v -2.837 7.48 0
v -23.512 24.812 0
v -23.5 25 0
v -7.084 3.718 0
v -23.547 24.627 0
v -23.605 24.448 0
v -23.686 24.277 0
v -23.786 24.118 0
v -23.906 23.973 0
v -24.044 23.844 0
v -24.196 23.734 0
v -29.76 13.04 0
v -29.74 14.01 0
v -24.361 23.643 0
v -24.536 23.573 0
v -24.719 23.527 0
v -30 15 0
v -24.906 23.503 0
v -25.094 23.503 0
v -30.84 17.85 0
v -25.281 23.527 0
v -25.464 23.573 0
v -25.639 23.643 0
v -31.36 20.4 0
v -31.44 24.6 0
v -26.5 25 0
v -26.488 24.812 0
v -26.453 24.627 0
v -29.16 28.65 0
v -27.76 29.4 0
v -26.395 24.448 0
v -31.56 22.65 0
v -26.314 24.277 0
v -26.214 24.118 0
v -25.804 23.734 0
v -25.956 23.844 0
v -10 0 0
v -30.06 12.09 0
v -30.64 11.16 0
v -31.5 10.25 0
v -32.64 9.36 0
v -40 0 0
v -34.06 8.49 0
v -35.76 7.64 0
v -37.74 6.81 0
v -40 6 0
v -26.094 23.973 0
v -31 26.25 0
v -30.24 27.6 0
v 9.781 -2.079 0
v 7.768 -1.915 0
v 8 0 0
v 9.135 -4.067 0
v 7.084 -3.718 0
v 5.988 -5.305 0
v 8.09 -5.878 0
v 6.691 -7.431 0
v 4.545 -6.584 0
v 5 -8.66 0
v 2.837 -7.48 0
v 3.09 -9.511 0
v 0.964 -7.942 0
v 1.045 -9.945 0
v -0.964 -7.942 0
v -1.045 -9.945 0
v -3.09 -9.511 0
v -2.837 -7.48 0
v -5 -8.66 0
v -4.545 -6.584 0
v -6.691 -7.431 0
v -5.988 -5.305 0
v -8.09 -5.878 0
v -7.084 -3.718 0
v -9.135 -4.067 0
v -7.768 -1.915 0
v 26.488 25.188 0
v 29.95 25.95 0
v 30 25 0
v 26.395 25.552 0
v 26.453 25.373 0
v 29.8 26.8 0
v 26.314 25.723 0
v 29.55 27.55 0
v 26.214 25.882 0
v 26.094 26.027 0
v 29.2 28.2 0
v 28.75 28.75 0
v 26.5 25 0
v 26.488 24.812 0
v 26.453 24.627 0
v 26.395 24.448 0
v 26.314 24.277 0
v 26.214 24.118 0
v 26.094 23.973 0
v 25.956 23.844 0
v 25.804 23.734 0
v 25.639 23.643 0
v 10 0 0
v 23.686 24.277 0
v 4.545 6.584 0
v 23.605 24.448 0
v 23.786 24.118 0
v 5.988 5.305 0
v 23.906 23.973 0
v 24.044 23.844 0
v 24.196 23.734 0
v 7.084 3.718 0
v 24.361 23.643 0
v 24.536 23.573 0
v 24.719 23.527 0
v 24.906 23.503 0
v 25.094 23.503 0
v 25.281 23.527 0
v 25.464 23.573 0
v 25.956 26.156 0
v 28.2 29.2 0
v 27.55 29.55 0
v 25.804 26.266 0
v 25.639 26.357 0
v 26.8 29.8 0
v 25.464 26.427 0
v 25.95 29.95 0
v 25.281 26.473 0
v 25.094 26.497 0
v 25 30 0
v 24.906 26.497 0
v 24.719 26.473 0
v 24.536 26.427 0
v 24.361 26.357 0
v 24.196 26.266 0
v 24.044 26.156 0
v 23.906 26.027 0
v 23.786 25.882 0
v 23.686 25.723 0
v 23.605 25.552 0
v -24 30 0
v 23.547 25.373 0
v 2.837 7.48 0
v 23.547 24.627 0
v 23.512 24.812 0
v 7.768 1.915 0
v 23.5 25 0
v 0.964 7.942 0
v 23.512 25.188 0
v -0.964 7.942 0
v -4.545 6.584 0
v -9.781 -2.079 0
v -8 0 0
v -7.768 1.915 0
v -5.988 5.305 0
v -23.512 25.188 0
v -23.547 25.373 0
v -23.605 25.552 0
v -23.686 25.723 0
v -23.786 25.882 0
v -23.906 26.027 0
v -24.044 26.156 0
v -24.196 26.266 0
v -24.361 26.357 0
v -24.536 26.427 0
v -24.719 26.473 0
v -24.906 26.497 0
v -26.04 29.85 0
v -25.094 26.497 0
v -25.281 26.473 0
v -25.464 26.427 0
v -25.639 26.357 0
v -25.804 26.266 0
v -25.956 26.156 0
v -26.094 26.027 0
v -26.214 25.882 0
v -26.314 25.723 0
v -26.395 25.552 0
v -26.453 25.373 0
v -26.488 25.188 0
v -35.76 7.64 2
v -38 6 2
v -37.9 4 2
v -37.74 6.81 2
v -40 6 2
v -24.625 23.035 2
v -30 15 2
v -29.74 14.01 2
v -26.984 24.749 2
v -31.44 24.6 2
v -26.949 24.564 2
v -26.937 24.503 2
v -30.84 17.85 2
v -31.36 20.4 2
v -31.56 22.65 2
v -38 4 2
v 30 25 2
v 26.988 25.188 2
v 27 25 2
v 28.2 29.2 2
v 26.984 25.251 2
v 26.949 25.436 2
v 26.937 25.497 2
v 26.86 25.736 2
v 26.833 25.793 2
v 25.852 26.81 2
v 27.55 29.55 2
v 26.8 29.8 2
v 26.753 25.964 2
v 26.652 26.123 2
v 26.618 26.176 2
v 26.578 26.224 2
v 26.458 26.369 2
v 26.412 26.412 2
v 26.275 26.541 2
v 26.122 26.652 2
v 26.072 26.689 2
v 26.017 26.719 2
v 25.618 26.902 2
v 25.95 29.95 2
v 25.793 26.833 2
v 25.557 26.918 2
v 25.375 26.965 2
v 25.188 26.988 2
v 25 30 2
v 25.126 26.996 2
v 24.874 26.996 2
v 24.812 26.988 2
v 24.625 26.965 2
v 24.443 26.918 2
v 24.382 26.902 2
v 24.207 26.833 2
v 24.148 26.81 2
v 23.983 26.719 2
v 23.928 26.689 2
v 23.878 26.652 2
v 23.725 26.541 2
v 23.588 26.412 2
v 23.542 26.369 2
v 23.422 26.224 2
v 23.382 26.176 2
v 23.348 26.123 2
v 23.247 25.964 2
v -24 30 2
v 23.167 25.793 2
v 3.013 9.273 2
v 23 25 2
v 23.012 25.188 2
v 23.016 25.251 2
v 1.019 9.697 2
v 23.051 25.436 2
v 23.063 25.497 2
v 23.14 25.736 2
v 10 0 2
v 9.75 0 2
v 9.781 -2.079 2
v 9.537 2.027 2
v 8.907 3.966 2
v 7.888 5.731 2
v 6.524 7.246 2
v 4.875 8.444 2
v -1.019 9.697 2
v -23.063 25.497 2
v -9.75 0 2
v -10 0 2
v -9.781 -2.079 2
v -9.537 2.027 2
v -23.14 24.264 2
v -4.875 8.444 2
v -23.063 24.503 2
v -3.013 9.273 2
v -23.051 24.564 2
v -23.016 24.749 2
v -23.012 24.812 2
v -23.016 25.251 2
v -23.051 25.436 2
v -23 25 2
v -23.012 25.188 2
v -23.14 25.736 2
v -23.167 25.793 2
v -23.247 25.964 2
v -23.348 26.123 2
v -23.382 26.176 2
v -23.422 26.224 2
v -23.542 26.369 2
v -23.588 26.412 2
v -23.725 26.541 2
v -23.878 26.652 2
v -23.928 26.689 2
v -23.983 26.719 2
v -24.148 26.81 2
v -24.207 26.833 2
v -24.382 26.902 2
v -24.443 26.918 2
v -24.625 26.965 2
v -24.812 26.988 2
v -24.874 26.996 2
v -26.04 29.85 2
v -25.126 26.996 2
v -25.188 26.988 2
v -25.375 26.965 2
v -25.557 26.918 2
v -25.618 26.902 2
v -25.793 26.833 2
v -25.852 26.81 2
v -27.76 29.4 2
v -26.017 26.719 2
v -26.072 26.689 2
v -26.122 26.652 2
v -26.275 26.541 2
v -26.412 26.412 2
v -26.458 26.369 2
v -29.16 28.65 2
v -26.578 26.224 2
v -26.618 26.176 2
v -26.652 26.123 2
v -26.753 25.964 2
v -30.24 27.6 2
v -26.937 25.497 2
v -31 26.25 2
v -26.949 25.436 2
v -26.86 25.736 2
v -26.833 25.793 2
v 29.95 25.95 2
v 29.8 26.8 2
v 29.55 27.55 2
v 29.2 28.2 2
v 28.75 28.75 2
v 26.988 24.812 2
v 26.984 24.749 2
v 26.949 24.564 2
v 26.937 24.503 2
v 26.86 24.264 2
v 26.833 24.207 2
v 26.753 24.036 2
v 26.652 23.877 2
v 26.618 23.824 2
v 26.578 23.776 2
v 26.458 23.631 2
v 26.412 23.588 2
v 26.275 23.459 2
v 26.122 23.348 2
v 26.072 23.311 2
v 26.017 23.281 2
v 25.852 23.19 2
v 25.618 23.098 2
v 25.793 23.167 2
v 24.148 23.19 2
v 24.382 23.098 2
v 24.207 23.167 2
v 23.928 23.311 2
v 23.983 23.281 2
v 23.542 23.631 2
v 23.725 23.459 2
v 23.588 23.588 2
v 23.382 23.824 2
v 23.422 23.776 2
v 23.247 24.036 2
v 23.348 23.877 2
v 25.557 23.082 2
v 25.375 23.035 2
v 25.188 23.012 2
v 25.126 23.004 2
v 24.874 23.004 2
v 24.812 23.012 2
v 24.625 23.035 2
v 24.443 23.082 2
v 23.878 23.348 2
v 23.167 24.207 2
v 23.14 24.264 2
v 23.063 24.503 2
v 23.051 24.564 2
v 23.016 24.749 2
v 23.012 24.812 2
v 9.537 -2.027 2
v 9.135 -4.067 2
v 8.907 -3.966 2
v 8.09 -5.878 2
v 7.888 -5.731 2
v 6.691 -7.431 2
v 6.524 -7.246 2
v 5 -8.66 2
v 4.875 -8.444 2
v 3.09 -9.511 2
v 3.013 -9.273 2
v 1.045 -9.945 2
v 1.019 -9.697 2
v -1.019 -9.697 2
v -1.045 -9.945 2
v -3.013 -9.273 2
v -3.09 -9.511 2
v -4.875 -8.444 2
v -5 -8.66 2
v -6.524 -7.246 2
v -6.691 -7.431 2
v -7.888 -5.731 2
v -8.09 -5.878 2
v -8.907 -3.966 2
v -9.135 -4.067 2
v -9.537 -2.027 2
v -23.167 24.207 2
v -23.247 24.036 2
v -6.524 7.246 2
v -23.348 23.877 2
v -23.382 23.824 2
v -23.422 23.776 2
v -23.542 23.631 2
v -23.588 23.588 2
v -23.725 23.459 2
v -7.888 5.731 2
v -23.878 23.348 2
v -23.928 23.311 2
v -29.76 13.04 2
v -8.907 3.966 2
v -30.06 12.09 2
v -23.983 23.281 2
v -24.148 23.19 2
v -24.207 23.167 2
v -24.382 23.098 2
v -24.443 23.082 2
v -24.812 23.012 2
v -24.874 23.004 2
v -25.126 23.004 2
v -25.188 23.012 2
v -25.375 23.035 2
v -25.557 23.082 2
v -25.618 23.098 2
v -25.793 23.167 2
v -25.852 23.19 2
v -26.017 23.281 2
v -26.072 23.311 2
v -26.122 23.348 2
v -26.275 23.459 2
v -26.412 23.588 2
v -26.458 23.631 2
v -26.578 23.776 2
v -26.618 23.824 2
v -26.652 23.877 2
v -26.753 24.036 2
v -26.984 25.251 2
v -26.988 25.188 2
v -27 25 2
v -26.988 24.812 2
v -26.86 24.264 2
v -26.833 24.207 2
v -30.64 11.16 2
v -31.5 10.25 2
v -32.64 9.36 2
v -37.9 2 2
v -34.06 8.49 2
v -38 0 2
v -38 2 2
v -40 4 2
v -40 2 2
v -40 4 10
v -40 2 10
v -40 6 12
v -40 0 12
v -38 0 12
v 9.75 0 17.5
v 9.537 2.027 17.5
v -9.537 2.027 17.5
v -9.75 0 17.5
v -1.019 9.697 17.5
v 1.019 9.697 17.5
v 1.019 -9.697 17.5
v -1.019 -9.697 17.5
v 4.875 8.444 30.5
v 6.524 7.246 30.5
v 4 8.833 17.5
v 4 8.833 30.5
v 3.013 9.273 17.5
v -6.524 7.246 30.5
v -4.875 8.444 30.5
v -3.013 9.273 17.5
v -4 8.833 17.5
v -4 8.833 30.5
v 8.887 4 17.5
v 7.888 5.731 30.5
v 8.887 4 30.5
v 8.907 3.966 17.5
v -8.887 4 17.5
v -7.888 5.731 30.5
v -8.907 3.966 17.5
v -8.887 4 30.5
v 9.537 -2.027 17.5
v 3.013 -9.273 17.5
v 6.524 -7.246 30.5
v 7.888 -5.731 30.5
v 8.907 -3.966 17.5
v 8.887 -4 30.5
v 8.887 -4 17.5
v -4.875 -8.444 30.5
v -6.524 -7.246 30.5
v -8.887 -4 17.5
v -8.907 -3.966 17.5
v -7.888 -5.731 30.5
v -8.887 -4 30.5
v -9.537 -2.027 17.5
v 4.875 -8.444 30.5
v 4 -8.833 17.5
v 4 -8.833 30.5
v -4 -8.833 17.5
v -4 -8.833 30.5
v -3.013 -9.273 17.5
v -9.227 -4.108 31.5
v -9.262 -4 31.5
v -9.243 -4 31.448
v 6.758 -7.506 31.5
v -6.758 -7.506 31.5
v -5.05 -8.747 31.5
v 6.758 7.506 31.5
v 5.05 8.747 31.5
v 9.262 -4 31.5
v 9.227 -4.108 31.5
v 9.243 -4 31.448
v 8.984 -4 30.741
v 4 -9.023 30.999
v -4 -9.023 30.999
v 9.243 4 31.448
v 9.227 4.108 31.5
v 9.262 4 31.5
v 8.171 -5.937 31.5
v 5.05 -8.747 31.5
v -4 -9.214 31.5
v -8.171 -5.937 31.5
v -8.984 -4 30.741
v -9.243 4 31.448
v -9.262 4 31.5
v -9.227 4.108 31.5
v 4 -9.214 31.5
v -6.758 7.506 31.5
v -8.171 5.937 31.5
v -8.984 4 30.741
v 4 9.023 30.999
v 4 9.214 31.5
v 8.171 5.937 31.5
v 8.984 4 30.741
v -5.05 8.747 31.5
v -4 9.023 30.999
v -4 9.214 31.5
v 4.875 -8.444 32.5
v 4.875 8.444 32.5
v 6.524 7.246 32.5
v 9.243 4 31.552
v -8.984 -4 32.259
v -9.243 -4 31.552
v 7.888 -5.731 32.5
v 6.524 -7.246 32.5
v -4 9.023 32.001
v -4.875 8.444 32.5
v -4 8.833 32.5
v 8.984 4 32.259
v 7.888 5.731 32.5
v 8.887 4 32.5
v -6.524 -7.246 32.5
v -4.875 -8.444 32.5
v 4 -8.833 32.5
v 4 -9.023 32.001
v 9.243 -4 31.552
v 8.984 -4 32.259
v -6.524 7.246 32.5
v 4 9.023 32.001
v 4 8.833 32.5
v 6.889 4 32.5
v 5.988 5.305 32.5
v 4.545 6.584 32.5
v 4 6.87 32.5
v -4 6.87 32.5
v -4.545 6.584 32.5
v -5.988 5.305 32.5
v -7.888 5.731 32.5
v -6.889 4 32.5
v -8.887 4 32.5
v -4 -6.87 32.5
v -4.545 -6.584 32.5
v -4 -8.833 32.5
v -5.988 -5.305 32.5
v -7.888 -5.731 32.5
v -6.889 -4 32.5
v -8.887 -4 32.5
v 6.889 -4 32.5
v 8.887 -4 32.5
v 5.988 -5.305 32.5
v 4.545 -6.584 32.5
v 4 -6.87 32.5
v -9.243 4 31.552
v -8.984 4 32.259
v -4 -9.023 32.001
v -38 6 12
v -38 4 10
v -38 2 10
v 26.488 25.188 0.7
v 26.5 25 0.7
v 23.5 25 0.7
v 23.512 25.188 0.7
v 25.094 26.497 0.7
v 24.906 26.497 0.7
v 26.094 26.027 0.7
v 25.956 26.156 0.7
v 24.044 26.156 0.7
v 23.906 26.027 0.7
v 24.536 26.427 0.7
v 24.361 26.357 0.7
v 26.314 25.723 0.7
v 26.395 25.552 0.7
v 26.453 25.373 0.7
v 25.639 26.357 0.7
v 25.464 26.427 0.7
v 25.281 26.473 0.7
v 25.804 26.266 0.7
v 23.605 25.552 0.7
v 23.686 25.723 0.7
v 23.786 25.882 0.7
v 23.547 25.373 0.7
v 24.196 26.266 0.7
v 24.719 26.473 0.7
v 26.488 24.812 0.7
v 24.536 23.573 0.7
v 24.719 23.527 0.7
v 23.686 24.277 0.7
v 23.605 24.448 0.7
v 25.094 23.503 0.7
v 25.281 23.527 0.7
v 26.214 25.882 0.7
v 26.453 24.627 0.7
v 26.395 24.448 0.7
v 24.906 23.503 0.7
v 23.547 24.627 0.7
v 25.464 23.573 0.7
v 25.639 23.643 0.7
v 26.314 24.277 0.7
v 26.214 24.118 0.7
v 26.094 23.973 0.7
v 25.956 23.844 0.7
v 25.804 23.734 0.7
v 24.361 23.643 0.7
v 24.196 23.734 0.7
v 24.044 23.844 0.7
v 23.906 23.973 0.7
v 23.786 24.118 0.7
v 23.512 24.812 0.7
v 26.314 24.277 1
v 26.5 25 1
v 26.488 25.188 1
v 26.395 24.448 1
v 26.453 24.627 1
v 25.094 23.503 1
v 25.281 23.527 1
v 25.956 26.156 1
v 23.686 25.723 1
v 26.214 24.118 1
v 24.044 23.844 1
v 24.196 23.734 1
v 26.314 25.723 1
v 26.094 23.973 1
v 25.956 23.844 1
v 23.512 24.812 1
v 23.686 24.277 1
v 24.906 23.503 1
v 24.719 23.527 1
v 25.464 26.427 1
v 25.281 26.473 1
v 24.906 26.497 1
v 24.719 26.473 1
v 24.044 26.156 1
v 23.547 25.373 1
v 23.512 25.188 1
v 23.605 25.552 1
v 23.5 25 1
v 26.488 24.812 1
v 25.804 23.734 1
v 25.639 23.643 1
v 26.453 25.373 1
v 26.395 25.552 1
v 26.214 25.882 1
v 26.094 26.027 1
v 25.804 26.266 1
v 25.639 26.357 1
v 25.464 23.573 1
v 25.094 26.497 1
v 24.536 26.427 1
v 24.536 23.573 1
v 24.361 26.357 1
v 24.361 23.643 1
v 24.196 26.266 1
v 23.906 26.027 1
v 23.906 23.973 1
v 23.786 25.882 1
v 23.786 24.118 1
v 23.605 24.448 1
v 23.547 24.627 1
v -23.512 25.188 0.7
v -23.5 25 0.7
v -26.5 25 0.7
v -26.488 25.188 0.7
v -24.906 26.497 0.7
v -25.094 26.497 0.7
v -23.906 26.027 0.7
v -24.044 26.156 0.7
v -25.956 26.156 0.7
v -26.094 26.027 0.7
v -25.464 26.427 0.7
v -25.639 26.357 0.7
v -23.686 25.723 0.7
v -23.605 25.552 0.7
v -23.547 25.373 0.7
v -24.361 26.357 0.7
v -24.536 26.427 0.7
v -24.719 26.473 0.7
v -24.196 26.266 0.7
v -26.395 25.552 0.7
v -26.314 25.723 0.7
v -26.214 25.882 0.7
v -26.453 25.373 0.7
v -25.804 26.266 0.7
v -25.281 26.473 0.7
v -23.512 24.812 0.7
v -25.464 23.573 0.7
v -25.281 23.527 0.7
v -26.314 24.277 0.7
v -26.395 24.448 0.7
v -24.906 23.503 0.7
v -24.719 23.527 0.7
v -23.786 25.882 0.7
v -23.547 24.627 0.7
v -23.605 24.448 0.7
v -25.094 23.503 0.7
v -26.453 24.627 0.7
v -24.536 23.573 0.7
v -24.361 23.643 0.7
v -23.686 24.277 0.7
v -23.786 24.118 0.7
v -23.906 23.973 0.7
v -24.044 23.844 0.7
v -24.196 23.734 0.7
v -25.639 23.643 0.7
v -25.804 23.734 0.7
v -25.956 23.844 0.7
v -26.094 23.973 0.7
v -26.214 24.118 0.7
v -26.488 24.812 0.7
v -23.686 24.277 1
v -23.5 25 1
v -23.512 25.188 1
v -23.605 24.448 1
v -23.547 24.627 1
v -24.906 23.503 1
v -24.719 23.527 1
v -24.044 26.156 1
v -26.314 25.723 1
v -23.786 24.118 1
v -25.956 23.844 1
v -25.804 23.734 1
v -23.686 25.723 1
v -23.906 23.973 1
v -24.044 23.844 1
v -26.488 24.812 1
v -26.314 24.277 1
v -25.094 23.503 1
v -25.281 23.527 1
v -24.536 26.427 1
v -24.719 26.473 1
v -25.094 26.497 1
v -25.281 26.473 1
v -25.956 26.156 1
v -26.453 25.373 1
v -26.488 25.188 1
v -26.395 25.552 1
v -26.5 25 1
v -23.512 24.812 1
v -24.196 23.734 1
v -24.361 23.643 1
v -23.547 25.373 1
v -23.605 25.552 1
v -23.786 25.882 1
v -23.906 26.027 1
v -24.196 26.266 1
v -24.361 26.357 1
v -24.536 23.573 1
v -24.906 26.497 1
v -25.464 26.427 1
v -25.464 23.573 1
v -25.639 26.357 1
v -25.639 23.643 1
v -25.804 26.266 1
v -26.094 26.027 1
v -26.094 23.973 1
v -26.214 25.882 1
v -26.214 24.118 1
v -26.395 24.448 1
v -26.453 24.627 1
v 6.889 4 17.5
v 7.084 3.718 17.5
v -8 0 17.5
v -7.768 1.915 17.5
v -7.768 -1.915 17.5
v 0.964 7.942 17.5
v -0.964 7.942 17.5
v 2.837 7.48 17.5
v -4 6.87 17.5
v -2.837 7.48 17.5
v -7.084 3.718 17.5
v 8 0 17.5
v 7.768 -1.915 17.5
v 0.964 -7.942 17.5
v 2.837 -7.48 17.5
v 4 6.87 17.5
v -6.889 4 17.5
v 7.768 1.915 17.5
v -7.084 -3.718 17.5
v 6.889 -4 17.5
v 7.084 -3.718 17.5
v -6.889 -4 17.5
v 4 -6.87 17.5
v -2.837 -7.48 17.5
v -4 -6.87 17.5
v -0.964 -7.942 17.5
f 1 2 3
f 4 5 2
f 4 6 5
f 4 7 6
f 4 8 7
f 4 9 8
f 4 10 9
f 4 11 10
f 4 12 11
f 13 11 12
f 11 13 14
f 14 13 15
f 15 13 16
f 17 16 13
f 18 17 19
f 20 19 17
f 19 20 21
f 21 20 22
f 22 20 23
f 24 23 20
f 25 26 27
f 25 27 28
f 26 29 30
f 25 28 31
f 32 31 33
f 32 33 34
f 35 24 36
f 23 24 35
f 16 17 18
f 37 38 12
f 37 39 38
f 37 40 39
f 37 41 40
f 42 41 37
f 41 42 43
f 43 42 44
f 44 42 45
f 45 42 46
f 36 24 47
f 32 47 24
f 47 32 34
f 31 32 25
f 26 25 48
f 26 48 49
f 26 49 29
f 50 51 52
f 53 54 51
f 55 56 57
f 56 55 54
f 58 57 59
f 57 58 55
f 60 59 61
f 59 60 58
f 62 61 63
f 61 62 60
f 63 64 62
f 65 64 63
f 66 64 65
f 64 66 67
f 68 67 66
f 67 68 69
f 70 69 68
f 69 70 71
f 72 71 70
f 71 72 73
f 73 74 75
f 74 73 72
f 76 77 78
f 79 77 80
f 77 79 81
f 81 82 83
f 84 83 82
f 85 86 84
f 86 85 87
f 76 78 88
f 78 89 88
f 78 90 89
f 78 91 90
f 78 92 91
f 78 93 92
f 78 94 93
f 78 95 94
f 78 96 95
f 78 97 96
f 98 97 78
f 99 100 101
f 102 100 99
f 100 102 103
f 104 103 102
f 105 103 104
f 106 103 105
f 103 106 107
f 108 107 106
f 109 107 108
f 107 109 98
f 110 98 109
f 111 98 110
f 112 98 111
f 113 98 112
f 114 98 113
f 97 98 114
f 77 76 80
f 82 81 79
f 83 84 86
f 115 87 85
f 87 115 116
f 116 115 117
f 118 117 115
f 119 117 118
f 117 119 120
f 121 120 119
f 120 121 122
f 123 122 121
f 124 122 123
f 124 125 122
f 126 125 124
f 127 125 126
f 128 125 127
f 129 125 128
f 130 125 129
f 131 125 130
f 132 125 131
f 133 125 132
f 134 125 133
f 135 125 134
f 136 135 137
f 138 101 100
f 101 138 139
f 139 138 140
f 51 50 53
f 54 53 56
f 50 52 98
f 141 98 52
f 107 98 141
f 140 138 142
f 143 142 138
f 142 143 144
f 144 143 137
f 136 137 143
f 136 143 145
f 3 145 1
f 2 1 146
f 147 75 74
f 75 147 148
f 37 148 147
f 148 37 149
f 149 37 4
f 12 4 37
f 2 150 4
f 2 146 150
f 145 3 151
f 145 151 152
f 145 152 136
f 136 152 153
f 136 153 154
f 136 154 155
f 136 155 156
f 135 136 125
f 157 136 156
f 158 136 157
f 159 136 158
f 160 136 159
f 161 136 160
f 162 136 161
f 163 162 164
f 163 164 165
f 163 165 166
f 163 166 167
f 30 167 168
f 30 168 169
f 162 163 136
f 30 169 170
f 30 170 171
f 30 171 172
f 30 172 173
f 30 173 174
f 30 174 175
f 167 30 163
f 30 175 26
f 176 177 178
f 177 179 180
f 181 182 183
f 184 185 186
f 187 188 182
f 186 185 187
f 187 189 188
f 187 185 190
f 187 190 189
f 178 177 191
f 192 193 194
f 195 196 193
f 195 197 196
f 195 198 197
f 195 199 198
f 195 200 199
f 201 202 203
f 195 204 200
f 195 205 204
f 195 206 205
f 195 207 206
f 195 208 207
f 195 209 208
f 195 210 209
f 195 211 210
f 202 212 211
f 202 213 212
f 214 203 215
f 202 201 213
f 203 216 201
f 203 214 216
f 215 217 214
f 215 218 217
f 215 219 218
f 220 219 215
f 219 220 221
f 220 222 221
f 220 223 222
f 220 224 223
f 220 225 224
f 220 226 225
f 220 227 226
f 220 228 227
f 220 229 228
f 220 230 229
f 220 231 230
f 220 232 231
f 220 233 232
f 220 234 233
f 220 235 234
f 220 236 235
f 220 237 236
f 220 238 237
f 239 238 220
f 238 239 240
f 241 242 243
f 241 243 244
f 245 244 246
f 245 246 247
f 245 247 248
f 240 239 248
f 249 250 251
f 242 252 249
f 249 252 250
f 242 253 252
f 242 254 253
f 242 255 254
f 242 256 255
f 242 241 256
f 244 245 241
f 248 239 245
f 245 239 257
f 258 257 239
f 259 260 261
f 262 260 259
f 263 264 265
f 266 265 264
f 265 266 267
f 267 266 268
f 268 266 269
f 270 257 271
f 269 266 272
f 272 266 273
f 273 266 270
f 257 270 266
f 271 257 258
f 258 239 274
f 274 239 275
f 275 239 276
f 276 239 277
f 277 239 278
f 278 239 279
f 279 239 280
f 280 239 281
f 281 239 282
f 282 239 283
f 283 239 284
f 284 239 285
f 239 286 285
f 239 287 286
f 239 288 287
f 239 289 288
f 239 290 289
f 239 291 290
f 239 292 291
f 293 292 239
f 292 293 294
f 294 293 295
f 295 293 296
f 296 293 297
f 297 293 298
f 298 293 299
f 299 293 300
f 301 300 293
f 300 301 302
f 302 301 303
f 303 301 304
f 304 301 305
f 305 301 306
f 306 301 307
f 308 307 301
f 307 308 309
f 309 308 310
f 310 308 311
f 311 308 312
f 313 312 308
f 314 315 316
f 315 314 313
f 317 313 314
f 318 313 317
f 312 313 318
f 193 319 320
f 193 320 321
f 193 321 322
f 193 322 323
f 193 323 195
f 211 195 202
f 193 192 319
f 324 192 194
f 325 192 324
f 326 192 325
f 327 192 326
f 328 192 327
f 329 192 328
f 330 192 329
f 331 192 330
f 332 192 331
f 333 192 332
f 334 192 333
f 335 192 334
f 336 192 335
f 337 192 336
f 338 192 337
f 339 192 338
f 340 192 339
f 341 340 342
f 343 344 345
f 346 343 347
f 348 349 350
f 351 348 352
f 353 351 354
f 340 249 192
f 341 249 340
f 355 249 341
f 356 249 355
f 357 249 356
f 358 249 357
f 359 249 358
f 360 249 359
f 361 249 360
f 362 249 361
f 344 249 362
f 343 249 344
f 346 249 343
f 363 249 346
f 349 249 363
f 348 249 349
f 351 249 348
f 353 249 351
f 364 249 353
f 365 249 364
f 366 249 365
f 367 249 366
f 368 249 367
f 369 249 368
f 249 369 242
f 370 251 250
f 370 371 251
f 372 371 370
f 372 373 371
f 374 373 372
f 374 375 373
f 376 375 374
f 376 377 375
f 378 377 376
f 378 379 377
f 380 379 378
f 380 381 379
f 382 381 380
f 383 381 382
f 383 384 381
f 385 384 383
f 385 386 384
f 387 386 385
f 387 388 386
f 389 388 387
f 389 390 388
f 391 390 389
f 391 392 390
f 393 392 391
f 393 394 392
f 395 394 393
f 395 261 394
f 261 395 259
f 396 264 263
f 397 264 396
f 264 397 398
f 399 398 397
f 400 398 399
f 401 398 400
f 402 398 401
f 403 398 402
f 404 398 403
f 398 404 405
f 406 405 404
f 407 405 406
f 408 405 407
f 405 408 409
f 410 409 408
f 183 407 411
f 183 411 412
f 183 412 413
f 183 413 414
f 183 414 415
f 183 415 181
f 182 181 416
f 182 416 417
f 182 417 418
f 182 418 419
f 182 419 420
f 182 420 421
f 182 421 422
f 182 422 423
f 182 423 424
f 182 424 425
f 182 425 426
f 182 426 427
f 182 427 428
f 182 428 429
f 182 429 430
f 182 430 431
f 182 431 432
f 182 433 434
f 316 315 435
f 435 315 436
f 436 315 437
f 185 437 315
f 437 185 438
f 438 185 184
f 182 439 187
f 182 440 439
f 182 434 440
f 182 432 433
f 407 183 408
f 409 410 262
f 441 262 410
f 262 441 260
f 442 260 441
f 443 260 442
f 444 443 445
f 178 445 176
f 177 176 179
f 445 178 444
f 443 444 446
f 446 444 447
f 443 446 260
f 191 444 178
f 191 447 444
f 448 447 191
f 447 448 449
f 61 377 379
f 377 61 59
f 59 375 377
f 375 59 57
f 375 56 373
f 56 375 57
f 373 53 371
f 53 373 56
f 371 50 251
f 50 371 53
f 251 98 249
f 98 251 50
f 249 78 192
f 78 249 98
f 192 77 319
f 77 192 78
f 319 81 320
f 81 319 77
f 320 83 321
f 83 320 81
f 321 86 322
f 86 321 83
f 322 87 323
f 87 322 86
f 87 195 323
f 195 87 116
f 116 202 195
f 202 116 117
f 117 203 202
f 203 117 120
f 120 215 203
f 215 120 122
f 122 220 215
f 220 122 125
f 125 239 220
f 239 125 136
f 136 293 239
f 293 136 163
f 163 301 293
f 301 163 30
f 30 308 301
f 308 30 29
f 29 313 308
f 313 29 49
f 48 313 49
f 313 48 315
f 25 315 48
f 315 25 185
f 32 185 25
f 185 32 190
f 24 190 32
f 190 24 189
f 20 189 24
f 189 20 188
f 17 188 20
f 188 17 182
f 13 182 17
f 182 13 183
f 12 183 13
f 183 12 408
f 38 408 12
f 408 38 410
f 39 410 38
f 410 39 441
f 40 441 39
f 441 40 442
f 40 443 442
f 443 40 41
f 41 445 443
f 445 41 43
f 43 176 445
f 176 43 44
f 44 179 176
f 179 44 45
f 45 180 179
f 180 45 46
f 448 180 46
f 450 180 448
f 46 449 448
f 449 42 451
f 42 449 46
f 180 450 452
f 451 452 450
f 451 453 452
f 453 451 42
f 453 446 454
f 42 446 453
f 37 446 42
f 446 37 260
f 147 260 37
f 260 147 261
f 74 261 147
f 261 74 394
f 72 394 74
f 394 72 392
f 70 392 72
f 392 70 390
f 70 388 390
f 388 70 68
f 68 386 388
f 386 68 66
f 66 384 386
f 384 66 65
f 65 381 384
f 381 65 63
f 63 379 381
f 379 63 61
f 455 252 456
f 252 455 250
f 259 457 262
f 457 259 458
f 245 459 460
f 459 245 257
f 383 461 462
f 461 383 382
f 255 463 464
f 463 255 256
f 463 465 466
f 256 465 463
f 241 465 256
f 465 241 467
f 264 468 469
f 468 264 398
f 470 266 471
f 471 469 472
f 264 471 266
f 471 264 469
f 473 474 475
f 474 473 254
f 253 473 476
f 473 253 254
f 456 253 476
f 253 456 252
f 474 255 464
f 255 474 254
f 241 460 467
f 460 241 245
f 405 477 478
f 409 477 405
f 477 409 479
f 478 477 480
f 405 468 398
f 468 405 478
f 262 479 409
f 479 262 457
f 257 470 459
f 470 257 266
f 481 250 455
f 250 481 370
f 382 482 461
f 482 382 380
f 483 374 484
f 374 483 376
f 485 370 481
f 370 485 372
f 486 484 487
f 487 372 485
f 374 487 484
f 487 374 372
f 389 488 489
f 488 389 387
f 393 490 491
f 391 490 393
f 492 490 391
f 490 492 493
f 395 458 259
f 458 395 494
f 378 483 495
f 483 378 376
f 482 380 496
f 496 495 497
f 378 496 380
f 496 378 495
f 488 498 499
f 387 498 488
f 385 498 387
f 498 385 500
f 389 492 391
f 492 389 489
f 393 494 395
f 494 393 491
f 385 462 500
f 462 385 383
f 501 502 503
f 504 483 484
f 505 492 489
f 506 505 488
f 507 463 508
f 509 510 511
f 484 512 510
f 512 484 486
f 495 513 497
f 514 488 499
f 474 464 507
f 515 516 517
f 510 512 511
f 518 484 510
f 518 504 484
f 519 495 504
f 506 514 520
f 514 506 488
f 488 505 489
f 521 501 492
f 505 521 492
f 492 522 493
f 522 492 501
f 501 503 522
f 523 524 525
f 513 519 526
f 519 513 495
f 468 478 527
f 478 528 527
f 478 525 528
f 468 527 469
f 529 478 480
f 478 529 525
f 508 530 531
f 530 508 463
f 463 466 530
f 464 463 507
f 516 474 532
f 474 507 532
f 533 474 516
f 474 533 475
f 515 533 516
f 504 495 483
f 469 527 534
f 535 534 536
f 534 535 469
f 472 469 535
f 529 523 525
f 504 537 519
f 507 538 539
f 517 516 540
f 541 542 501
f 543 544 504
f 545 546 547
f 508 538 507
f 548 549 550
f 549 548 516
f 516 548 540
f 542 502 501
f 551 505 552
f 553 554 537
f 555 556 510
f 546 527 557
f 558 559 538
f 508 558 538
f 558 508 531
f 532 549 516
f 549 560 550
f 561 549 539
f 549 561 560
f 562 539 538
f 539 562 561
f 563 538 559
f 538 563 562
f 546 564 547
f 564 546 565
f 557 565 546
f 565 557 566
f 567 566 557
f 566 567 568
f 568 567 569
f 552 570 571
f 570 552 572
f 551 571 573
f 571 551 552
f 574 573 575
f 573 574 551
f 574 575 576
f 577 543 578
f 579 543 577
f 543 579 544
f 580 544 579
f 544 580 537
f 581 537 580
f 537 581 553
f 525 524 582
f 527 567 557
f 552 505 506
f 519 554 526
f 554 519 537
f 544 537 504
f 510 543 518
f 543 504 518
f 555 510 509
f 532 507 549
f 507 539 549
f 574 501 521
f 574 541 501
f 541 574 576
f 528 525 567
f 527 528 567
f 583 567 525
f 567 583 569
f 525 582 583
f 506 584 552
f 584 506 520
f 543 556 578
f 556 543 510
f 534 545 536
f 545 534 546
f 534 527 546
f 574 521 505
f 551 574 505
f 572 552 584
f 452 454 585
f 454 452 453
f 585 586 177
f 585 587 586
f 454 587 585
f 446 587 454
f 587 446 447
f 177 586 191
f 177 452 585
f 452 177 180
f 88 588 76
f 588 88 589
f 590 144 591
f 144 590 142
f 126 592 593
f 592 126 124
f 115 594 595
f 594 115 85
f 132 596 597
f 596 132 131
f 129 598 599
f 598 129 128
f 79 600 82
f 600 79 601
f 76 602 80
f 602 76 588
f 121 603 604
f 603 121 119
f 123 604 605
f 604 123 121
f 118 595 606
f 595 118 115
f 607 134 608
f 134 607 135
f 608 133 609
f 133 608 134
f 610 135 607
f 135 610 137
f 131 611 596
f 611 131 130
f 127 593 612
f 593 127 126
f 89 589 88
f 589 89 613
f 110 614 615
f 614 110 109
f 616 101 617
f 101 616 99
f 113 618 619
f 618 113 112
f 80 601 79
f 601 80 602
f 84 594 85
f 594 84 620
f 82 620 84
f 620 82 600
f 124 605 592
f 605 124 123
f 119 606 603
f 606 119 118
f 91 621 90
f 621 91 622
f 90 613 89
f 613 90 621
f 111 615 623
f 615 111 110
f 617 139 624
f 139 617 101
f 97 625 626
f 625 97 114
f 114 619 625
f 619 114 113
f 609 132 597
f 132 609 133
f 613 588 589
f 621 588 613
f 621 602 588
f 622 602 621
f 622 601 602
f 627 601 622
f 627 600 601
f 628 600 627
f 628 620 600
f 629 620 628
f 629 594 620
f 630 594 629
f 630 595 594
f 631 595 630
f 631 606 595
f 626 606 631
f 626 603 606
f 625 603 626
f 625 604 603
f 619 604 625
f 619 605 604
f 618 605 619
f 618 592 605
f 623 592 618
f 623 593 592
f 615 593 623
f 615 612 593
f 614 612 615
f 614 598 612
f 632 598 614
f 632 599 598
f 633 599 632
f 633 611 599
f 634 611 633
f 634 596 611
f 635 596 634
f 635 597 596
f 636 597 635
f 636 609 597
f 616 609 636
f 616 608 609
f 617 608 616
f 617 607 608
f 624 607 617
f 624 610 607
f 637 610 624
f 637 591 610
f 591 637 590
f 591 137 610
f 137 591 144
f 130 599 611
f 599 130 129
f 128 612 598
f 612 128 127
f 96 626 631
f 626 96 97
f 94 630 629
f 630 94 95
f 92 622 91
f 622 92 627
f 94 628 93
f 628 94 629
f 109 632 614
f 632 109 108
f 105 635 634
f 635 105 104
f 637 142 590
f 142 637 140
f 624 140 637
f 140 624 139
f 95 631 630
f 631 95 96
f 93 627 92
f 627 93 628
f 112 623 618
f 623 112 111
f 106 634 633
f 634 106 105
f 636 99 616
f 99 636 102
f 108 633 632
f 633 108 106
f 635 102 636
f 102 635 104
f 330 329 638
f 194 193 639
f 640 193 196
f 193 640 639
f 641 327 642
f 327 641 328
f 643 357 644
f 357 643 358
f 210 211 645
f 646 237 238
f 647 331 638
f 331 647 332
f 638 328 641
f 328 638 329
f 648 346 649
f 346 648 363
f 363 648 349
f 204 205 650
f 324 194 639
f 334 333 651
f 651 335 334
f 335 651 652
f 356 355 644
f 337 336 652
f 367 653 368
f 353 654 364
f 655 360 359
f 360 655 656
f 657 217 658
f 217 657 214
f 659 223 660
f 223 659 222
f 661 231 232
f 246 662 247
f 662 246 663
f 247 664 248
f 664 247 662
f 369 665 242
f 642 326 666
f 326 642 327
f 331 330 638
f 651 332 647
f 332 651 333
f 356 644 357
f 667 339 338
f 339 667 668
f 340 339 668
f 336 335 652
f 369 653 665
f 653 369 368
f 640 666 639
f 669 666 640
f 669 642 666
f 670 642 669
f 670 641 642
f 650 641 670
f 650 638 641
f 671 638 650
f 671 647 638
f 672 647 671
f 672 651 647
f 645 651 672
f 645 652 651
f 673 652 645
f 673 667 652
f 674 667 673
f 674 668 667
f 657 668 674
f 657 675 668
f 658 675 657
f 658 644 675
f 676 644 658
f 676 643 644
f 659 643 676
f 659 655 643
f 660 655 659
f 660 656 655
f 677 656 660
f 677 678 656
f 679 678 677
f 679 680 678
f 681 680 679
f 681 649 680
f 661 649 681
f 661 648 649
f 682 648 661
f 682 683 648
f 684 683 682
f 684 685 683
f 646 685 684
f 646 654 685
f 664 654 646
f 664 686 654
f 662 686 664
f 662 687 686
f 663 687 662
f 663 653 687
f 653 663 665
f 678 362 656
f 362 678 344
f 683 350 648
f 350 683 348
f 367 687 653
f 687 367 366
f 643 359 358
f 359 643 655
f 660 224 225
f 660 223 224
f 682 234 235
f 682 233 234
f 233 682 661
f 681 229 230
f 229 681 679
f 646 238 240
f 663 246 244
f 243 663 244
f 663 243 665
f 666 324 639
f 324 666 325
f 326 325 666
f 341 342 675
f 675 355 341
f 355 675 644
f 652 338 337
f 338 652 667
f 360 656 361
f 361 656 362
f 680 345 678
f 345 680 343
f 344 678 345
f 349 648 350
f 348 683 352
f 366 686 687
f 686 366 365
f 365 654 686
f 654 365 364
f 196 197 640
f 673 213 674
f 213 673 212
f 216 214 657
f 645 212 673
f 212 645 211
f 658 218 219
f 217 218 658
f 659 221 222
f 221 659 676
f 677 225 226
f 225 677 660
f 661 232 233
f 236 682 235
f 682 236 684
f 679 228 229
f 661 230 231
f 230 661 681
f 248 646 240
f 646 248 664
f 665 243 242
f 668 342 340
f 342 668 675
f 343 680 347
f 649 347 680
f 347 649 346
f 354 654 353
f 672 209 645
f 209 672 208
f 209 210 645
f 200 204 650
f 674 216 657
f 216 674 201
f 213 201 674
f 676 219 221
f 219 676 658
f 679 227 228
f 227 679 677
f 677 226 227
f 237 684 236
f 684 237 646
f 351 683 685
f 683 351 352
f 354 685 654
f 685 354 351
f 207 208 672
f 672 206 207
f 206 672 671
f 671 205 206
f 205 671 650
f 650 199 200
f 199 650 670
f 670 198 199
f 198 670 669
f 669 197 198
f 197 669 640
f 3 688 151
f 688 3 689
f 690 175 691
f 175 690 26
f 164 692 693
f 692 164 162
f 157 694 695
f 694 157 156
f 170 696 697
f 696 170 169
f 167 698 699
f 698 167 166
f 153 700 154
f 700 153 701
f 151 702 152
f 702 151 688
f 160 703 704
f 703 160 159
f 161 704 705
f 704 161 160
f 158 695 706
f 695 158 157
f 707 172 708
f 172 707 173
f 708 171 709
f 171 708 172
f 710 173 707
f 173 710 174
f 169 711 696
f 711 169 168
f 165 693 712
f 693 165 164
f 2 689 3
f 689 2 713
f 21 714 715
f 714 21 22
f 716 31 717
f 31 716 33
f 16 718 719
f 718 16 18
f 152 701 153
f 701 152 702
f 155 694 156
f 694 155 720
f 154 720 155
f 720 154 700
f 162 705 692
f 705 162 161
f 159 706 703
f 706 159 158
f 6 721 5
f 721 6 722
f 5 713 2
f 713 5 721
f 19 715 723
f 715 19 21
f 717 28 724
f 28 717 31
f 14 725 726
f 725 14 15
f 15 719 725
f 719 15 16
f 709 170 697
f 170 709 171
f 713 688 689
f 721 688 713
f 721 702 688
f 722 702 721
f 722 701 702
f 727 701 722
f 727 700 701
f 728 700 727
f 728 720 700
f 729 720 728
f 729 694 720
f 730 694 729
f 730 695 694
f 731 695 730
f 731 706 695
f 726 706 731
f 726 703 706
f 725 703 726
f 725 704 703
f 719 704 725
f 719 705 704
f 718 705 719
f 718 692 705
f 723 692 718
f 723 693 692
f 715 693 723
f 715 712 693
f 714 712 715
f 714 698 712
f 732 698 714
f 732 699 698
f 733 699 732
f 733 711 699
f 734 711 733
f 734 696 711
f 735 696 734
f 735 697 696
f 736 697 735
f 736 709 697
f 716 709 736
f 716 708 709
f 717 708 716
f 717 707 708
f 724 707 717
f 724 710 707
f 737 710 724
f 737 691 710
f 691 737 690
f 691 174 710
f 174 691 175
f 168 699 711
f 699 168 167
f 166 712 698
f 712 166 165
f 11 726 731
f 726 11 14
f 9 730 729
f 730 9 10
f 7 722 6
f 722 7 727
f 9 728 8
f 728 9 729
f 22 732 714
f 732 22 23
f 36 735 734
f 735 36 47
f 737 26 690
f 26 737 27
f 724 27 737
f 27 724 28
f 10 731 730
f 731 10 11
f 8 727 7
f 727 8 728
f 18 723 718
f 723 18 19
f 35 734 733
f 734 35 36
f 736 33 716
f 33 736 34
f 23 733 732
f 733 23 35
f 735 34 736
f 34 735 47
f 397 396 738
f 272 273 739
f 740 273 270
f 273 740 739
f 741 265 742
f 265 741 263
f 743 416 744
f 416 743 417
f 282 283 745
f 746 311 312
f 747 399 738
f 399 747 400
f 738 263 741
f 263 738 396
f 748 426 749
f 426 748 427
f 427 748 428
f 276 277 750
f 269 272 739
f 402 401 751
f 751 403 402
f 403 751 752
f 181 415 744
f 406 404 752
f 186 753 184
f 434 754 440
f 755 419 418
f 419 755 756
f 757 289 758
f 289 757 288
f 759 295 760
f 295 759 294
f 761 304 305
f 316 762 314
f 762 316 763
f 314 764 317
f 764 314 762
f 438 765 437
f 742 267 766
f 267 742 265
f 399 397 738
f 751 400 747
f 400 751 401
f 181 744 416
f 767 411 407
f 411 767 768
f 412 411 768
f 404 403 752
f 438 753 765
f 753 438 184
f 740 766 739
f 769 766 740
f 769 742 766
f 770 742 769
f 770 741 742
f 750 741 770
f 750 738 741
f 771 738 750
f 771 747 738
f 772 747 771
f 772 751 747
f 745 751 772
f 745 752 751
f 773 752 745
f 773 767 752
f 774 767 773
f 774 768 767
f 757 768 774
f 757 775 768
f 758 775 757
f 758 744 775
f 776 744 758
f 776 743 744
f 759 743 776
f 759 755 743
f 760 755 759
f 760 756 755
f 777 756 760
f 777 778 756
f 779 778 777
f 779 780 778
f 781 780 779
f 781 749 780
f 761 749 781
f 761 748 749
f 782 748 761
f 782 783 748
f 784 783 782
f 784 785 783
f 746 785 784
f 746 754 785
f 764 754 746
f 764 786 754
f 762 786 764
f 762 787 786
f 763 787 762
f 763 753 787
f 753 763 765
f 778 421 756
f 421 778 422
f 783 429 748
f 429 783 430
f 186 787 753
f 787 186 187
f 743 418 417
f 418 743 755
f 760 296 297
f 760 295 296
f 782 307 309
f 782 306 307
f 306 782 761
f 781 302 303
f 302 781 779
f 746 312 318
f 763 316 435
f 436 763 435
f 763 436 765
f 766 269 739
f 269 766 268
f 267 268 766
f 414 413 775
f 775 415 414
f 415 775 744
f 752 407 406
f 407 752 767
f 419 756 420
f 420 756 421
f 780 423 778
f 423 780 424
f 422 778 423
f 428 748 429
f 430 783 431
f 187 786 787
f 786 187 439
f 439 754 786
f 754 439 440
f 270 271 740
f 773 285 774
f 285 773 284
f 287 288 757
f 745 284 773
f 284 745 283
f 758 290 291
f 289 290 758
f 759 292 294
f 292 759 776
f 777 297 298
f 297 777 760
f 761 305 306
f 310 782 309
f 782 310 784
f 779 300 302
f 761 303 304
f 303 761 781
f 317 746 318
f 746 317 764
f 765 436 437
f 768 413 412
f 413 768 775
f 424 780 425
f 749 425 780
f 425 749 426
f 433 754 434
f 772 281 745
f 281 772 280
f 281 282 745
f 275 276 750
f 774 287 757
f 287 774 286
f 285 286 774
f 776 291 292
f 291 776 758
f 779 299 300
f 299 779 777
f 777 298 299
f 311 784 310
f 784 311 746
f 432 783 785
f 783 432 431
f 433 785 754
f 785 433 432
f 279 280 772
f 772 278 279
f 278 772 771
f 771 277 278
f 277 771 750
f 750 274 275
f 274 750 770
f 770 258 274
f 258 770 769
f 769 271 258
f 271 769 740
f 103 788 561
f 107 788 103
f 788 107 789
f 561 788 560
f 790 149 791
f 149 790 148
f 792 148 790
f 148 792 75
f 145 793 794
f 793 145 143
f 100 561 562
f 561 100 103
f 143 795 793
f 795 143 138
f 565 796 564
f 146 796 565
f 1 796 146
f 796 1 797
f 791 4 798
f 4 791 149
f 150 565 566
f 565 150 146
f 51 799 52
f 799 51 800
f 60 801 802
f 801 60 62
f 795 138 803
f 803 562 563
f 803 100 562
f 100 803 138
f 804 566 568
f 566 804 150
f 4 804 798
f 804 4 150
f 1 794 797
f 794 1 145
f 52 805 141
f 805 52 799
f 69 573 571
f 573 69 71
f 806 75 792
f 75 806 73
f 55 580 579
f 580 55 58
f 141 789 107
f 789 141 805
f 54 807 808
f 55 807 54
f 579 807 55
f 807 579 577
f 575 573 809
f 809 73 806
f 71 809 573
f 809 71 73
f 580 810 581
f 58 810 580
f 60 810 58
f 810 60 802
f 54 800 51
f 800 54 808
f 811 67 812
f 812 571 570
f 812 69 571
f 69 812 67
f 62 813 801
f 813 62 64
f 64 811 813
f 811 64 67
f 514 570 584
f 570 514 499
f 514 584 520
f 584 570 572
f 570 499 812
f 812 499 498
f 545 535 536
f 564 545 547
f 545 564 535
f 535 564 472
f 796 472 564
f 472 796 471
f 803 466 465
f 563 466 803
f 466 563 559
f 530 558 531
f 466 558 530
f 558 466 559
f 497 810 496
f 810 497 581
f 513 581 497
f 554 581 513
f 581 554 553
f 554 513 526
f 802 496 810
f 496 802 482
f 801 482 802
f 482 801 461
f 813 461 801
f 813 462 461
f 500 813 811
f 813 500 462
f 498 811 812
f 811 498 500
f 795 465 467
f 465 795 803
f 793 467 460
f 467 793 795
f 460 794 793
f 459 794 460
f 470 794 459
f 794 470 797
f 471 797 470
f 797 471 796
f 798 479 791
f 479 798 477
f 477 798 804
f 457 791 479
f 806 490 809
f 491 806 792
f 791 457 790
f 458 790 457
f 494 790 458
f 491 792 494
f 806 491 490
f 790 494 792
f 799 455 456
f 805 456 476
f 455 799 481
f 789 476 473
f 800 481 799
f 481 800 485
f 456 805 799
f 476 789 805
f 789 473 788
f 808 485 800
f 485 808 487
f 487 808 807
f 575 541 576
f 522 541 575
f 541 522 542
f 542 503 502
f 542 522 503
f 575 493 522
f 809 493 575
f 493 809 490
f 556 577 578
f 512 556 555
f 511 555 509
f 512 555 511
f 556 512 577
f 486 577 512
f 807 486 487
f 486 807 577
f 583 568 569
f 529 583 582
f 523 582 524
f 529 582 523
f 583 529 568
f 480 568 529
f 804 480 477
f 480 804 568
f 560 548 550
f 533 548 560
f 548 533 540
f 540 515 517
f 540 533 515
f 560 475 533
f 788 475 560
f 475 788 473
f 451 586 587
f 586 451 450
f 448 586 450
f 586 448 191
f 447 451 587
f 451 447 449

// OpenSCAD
// file: vector.scad
function is_nan(x) = x != x ;

// reverse vector
function reverse(v) = [for (i =[len(v)-1:-1:0]) v[i]];
// repeat vector n-times
function repeat(v, n) = [for (i=[0:n*len(v)-1])  v[ i%len(v) ] ];
// allow negative indexes for vector (counting from the back). -1 is last element in array
function v_index(v, n) = is_undef(n) ? len(v) : n < 0 ? len(v)+n : n ;
// cut slice of vertor. `start` included , `end` excluded.
function slice(v, start, end=undef) = [for (i=[start:v_index(v,end)-1]) v[i] ];

function v_add(v, n) = [for (i=[0:len(v)-1]) v[i]+n ];

assert(reverse([1,2,3]) == [3,2,1]);
assert(repeat([1,2],3) ==  [1, 2, 1, 2, 1, 2]);
assert(v_index([1,2,3],-1)==2);
assert(v_index([1,2,3],0) == 0);
assert(v_index([1,2,3],undef)==3);
assert(slice([1,2,3],1,-1)==[2]);
assert(slice([1,2,3],1)==[2,3]);
assert(v_add([1,2,3],1)==[2,3,4]);
// file: 2d.scad
use <vector.scad>

function max_x(a, i = 0) = (len(a) == 0) ? 0 : (i < len(a) - 1) ? max(a[i][0], max_x(a, i+1)) : a[i][0];
function shift_x(a, dx, scaler=1) = [for ( p=a) [scaler*p[0]+dx,p[1]] ];

function scale_poly(a, s=[1,1]) = [for (p=a) [ s[0]*p[0], s[1]*p[1] ]];
function shift_poly(a, d=[0,0]) = [for (p=a) [ d + p ]];

function inverse_x(a) = shift_x(reverse(a),max_x(a),-1);
function mirror_x(a) = shift_x(reverse(a),0,-1);

function symmetry_x(a) = scale_poly(reverse(a),s=[-1,1]);
function symmetry_y(a) = scale_poly(reverse(a),s=[1,-1]);

function concat_with_undefs(prev,next) = 
    len(prev) == 0 ? next : 
        let (prev_last_p = prev[v_index(prev,-1)]) 
        is_undef(prev_last_p[1])  
            ? concat(slice(prev,0,-1),[[prev_last_p[0],next[0][1]]],next) 
            : is_undef(next[0][1]) 
                ? concat(prev, [[next[0][0],prev_last_p[1]]], slice(next,1)) 
                : concat(prev, next) ;

function join_poly(polys, r = [], i=0) = (i < len(polys)) ? 
    join_poly( polys, concat_with_undefs(r,shift_x(polys[i],max_x(r))) ,i+1) : r;

function line_segment(p1,p2) = [p1,[p2[0]-p1[0], p2[1] - p1[1]]];

function ls_slope(ls) = ls[1][1]/ls[1][0] ;

function ls_distance(ls) = sqrt(pow(ls[1][1],2)+pow(ls[1][0],2));

function ls_angle(ls) = 
    let (ss = sign(ls[1][1]) == -1 ? -1 : 1)
    let (sc = sign(ls[1][0]) == -1 ? -1 : 1)
    let (ts = asin(ls[1][1]/ls_distance(ls))) 
    ts != 0 ? ( sc == -1 ? ss * 180 - ts : ts ) : ss*acos(ls[1][0]/ls_distance(ls))  ;
    
assert(ls_angle([[0, 0], [1, 0]])==0);
assert(ls_angle([[0, 0], [-1, 0]])==180);


function angle_diff_cw(a1, a2) = a1 < a2 ? angle_diff_cw(a1+360, a2) : a1 - a2 ;

function angle_diff_ccw(a1, a2) = angle_diff_cw(a2, a1);

function ls_midpoint(ls) = ls[0]+ls[1]/2;

function ls_endpoint(ls) = ls[0]+ls[1];

function line(slope,pt) = [slope, pt[1]-slope*pt[0]];

function l_y(l,x) = l[0]*x + l[1];

function l_segment(l,x1,x2) = line_segment([x1, l_y(l,x1)], [x2, l_y(l,x2)]);

function ls_line(ls) = let(slope=ls_slope(ls)) line(slope,ls[0]);

function ls_perpendicular(ls) = 
    let (l = ls_line(ls)) 
    let (mp = ls_midpoint(ls))
    line(-1/l[0], mp);

function intersect_lines(l1, l2) = 
    let (x = (l2[1]-l1[1])/(l1[0]-l2[0]))
    [x,l_y(l1,x)];

function interpolate_point(ls,fraction) =  [
    ls[0][0] + fraction*ls[1][0],
    ls[0][1] + fraction*ls[1][1]
];


function bezier_curve( a, b, c ) =
    len(a)==3 ? _bezier_curve(a[0],a[1],a[2]) : _bezier_curve(a,b,c);

function _bezier_curve( p1, p2, p3 ) =
    [line_segment(p1,p2), line_segment(p2, p3)];

function curve_point(bc, fraction) =
    interpolate_point(
        line_segment(
            interpolate_point(bc[0],fraction), 
            interpolate_point(bc[1], fraction)), 
        fraction);

function bc_poly(bc, n_points=10) = [for ( f = [0:1/n_points:1]) curve_point(bc, f)] ;

function rake_poly(up_ramp, down_to_valley, n_of_valleys) = 
    join_poly(concat(
        [up_ramp],
        repeat(
            [
                down_to_valley, 
                inverse_x(down_to_valley) // up on other side of the valley
            ], 
            n_of_valleys),
        [inverse_x(up_ramp)] // down ramp
    ));

function arc_point(a,f) = 
    let(c = a[0])
    let(r = a[1])
    let(initial_angle = a[2])
    let(cw = a[3])
    let(range = a[4])
    let (angle = cw ? initial_angle - f * range : initial_angle + f * range)
    c+[r*cos(angle),r*sin(angle)];

function arc_poly(a, n_points=10) = [for ( f = [0:1/n_points:1]) arc_point(a, f)] ;

function arc( a, b, c ) =
    len(a)==3 ? _arc(a[0],a[1],a[2]) : _arc(a,b,c);

function _arc( p1, p2, p3 ) =
    let(ls1 = line_segment(p1,p2))
    let(ls2 = line_segment(p2,p3))
    let(ls3 = line_segment(p1,p3))    
    let(lp1 = ls_perpendicular(ls1))
    let(lp2 = ls_perpendicular(ls2))
    let(lp3 = ls_perpendicular(ls3))
    let(c12 = intersect_lines(lp1,lp2))
    let(c23 = intersect_lines(lp2,lp3))
    let(c13 = intersect_lines(lp1,lp3))
    let(c = !is_nan(c23[0]) ? c23 : !is_nan(c13[0])? c13 : c12 )
    let(r1 = line_segment(c,p1))
    let(r2 = line_segment(c,p2))
    let(r3 = line_segment(c,p3))
    let(r = ls_distance(r1))
    let(a1 = ls_angle(r1))
    let(a2 = ls_angle(r2))
    let(a3 = ls_angle(r3))
    let(cw = angle_diff_cw(a1,a2) < angle_diff_cw(a1,a3))
    let(a_diff = cw ? angle_diff_cw(a1,a3) : angle_diff_ccw(a1,a3))
    [c,r,a1,cw,a_diff];


// linear interpolation or extrapolation (middle by default or any ratio) 
// using 2 points `a` and `b`
function mid(a,b,ratio=.5) = b + (a-b)*ratio ; 

function triangle(a,b,split=.5,height=.5) =
    let (delta = (mid(a,b,height)-b) * [[0,1],[-1,0]])
    let (z = mid(a,b,split) + delta)
    [a,z,b];

assert(arc([0,0],[0,1],[1,1])==arc([[0,0],[0,1],[1,1]]));
assert(bezier_curve([0,0],[0,1],[1,1])==bezier_curve([[0,0],[0,1],[1,1]]));

// echo(arc([0,0],[0,1],[1,1]));
// echo(arc(triangle([0,0],[1,1],.5,-.5)));

assert(arc([0,0],[0,1],[1,1])==arc(triangle([0,0],[1,1],.5,-.5)));
assert(arc([1,1],[1,2],[2,2])==arc(triangle([1,1],[2,2],.5,-.5)));

// echo(arc([0,0],[1,0],[1,1]));
// echo(arc(triangle([0,0],[1,1],.5,.5)));

assert(arc([0,0],[1,0],[1,1])==arc(triangle([0,0],[1,1],.5,.5)));
assert(arc([1,1],[2,1],[2,2])==arc(triangle([1,1],[2,2],.5,.5)));

// echo(arc(triangle([1,0], [-1,0])));
assert(arc(triangle([1,0], [-1,0])) ==  [[0, 0], 1, 0, false, 180]);

// echo(arc(triangle([0,-1], [0,1])));
assert(arc(triangle([0,-1], [0,1])) ==  [[0, 0], 1, -90, false, 180]);

// echo(arc(triangle([0,-1], [0,1],height=-.5)));
assert(arc(triangle([0,-1], [0,1], height=-.5)) ==  [[0, 0], 1, -90, true, 180]);
// main file
p=2;
c=28.5;
hole=16;
e=.1;
gap = 8;

use <2d.scad>

module countersink(hole_d,hole_h,screw_d){
    screw_h = screw_d - hole_d;
    union(){
        cylinder(d=hole_d,h=hole_h-screw_h+e,$fn=50);
        translate([0,0,hole_h/2]) cylinder(d1=hole_d, d2=screw_d,h=screw_h,$fn=50);
    }
}

difference() {
    union(){
        linear_extrude(height=p) {
            circle(r=10);
            polygon(points=concat([[10,0]],
            bc_poly(bezier_curve([30,25],[30,30],[25,30])),
            bc_poly(bezier_curve([-24,30],[-35,30],[-30,15])),
            bc_poly(bezier_curve([-30,15],[-28,10],[-40,6])),
            [[-40,0]]));
        }
        translate([0,0,p]) cylinder(d=19.5, h=c);
        translate([0,0,p+c]) cylinder(d1=19.5,d2=20.2, h=1);
        translate([0,0,p+c+1]) cylinder(d2=19.5,d1=20.2, h=1);
        translate([-40,0,p]) cube([2,6,10]);
    }
    translate([0,0,-e])cylinder(d=hole, h=c+p+2+e+e);
    translate([0,0,c-3]) cube([gap,50,hole],center=true);
    translate([0,0,c-3]) cube([50,gap,hole],center=true);
    translate([-40-e,2,p]) cube([2+e+e,2,8]);
    translate([25,25,-e]) countersink(3, p+e+e, 4.5);
    translate([-25,25,-e]) countersink(3, p+e+e, 4.5);

}
